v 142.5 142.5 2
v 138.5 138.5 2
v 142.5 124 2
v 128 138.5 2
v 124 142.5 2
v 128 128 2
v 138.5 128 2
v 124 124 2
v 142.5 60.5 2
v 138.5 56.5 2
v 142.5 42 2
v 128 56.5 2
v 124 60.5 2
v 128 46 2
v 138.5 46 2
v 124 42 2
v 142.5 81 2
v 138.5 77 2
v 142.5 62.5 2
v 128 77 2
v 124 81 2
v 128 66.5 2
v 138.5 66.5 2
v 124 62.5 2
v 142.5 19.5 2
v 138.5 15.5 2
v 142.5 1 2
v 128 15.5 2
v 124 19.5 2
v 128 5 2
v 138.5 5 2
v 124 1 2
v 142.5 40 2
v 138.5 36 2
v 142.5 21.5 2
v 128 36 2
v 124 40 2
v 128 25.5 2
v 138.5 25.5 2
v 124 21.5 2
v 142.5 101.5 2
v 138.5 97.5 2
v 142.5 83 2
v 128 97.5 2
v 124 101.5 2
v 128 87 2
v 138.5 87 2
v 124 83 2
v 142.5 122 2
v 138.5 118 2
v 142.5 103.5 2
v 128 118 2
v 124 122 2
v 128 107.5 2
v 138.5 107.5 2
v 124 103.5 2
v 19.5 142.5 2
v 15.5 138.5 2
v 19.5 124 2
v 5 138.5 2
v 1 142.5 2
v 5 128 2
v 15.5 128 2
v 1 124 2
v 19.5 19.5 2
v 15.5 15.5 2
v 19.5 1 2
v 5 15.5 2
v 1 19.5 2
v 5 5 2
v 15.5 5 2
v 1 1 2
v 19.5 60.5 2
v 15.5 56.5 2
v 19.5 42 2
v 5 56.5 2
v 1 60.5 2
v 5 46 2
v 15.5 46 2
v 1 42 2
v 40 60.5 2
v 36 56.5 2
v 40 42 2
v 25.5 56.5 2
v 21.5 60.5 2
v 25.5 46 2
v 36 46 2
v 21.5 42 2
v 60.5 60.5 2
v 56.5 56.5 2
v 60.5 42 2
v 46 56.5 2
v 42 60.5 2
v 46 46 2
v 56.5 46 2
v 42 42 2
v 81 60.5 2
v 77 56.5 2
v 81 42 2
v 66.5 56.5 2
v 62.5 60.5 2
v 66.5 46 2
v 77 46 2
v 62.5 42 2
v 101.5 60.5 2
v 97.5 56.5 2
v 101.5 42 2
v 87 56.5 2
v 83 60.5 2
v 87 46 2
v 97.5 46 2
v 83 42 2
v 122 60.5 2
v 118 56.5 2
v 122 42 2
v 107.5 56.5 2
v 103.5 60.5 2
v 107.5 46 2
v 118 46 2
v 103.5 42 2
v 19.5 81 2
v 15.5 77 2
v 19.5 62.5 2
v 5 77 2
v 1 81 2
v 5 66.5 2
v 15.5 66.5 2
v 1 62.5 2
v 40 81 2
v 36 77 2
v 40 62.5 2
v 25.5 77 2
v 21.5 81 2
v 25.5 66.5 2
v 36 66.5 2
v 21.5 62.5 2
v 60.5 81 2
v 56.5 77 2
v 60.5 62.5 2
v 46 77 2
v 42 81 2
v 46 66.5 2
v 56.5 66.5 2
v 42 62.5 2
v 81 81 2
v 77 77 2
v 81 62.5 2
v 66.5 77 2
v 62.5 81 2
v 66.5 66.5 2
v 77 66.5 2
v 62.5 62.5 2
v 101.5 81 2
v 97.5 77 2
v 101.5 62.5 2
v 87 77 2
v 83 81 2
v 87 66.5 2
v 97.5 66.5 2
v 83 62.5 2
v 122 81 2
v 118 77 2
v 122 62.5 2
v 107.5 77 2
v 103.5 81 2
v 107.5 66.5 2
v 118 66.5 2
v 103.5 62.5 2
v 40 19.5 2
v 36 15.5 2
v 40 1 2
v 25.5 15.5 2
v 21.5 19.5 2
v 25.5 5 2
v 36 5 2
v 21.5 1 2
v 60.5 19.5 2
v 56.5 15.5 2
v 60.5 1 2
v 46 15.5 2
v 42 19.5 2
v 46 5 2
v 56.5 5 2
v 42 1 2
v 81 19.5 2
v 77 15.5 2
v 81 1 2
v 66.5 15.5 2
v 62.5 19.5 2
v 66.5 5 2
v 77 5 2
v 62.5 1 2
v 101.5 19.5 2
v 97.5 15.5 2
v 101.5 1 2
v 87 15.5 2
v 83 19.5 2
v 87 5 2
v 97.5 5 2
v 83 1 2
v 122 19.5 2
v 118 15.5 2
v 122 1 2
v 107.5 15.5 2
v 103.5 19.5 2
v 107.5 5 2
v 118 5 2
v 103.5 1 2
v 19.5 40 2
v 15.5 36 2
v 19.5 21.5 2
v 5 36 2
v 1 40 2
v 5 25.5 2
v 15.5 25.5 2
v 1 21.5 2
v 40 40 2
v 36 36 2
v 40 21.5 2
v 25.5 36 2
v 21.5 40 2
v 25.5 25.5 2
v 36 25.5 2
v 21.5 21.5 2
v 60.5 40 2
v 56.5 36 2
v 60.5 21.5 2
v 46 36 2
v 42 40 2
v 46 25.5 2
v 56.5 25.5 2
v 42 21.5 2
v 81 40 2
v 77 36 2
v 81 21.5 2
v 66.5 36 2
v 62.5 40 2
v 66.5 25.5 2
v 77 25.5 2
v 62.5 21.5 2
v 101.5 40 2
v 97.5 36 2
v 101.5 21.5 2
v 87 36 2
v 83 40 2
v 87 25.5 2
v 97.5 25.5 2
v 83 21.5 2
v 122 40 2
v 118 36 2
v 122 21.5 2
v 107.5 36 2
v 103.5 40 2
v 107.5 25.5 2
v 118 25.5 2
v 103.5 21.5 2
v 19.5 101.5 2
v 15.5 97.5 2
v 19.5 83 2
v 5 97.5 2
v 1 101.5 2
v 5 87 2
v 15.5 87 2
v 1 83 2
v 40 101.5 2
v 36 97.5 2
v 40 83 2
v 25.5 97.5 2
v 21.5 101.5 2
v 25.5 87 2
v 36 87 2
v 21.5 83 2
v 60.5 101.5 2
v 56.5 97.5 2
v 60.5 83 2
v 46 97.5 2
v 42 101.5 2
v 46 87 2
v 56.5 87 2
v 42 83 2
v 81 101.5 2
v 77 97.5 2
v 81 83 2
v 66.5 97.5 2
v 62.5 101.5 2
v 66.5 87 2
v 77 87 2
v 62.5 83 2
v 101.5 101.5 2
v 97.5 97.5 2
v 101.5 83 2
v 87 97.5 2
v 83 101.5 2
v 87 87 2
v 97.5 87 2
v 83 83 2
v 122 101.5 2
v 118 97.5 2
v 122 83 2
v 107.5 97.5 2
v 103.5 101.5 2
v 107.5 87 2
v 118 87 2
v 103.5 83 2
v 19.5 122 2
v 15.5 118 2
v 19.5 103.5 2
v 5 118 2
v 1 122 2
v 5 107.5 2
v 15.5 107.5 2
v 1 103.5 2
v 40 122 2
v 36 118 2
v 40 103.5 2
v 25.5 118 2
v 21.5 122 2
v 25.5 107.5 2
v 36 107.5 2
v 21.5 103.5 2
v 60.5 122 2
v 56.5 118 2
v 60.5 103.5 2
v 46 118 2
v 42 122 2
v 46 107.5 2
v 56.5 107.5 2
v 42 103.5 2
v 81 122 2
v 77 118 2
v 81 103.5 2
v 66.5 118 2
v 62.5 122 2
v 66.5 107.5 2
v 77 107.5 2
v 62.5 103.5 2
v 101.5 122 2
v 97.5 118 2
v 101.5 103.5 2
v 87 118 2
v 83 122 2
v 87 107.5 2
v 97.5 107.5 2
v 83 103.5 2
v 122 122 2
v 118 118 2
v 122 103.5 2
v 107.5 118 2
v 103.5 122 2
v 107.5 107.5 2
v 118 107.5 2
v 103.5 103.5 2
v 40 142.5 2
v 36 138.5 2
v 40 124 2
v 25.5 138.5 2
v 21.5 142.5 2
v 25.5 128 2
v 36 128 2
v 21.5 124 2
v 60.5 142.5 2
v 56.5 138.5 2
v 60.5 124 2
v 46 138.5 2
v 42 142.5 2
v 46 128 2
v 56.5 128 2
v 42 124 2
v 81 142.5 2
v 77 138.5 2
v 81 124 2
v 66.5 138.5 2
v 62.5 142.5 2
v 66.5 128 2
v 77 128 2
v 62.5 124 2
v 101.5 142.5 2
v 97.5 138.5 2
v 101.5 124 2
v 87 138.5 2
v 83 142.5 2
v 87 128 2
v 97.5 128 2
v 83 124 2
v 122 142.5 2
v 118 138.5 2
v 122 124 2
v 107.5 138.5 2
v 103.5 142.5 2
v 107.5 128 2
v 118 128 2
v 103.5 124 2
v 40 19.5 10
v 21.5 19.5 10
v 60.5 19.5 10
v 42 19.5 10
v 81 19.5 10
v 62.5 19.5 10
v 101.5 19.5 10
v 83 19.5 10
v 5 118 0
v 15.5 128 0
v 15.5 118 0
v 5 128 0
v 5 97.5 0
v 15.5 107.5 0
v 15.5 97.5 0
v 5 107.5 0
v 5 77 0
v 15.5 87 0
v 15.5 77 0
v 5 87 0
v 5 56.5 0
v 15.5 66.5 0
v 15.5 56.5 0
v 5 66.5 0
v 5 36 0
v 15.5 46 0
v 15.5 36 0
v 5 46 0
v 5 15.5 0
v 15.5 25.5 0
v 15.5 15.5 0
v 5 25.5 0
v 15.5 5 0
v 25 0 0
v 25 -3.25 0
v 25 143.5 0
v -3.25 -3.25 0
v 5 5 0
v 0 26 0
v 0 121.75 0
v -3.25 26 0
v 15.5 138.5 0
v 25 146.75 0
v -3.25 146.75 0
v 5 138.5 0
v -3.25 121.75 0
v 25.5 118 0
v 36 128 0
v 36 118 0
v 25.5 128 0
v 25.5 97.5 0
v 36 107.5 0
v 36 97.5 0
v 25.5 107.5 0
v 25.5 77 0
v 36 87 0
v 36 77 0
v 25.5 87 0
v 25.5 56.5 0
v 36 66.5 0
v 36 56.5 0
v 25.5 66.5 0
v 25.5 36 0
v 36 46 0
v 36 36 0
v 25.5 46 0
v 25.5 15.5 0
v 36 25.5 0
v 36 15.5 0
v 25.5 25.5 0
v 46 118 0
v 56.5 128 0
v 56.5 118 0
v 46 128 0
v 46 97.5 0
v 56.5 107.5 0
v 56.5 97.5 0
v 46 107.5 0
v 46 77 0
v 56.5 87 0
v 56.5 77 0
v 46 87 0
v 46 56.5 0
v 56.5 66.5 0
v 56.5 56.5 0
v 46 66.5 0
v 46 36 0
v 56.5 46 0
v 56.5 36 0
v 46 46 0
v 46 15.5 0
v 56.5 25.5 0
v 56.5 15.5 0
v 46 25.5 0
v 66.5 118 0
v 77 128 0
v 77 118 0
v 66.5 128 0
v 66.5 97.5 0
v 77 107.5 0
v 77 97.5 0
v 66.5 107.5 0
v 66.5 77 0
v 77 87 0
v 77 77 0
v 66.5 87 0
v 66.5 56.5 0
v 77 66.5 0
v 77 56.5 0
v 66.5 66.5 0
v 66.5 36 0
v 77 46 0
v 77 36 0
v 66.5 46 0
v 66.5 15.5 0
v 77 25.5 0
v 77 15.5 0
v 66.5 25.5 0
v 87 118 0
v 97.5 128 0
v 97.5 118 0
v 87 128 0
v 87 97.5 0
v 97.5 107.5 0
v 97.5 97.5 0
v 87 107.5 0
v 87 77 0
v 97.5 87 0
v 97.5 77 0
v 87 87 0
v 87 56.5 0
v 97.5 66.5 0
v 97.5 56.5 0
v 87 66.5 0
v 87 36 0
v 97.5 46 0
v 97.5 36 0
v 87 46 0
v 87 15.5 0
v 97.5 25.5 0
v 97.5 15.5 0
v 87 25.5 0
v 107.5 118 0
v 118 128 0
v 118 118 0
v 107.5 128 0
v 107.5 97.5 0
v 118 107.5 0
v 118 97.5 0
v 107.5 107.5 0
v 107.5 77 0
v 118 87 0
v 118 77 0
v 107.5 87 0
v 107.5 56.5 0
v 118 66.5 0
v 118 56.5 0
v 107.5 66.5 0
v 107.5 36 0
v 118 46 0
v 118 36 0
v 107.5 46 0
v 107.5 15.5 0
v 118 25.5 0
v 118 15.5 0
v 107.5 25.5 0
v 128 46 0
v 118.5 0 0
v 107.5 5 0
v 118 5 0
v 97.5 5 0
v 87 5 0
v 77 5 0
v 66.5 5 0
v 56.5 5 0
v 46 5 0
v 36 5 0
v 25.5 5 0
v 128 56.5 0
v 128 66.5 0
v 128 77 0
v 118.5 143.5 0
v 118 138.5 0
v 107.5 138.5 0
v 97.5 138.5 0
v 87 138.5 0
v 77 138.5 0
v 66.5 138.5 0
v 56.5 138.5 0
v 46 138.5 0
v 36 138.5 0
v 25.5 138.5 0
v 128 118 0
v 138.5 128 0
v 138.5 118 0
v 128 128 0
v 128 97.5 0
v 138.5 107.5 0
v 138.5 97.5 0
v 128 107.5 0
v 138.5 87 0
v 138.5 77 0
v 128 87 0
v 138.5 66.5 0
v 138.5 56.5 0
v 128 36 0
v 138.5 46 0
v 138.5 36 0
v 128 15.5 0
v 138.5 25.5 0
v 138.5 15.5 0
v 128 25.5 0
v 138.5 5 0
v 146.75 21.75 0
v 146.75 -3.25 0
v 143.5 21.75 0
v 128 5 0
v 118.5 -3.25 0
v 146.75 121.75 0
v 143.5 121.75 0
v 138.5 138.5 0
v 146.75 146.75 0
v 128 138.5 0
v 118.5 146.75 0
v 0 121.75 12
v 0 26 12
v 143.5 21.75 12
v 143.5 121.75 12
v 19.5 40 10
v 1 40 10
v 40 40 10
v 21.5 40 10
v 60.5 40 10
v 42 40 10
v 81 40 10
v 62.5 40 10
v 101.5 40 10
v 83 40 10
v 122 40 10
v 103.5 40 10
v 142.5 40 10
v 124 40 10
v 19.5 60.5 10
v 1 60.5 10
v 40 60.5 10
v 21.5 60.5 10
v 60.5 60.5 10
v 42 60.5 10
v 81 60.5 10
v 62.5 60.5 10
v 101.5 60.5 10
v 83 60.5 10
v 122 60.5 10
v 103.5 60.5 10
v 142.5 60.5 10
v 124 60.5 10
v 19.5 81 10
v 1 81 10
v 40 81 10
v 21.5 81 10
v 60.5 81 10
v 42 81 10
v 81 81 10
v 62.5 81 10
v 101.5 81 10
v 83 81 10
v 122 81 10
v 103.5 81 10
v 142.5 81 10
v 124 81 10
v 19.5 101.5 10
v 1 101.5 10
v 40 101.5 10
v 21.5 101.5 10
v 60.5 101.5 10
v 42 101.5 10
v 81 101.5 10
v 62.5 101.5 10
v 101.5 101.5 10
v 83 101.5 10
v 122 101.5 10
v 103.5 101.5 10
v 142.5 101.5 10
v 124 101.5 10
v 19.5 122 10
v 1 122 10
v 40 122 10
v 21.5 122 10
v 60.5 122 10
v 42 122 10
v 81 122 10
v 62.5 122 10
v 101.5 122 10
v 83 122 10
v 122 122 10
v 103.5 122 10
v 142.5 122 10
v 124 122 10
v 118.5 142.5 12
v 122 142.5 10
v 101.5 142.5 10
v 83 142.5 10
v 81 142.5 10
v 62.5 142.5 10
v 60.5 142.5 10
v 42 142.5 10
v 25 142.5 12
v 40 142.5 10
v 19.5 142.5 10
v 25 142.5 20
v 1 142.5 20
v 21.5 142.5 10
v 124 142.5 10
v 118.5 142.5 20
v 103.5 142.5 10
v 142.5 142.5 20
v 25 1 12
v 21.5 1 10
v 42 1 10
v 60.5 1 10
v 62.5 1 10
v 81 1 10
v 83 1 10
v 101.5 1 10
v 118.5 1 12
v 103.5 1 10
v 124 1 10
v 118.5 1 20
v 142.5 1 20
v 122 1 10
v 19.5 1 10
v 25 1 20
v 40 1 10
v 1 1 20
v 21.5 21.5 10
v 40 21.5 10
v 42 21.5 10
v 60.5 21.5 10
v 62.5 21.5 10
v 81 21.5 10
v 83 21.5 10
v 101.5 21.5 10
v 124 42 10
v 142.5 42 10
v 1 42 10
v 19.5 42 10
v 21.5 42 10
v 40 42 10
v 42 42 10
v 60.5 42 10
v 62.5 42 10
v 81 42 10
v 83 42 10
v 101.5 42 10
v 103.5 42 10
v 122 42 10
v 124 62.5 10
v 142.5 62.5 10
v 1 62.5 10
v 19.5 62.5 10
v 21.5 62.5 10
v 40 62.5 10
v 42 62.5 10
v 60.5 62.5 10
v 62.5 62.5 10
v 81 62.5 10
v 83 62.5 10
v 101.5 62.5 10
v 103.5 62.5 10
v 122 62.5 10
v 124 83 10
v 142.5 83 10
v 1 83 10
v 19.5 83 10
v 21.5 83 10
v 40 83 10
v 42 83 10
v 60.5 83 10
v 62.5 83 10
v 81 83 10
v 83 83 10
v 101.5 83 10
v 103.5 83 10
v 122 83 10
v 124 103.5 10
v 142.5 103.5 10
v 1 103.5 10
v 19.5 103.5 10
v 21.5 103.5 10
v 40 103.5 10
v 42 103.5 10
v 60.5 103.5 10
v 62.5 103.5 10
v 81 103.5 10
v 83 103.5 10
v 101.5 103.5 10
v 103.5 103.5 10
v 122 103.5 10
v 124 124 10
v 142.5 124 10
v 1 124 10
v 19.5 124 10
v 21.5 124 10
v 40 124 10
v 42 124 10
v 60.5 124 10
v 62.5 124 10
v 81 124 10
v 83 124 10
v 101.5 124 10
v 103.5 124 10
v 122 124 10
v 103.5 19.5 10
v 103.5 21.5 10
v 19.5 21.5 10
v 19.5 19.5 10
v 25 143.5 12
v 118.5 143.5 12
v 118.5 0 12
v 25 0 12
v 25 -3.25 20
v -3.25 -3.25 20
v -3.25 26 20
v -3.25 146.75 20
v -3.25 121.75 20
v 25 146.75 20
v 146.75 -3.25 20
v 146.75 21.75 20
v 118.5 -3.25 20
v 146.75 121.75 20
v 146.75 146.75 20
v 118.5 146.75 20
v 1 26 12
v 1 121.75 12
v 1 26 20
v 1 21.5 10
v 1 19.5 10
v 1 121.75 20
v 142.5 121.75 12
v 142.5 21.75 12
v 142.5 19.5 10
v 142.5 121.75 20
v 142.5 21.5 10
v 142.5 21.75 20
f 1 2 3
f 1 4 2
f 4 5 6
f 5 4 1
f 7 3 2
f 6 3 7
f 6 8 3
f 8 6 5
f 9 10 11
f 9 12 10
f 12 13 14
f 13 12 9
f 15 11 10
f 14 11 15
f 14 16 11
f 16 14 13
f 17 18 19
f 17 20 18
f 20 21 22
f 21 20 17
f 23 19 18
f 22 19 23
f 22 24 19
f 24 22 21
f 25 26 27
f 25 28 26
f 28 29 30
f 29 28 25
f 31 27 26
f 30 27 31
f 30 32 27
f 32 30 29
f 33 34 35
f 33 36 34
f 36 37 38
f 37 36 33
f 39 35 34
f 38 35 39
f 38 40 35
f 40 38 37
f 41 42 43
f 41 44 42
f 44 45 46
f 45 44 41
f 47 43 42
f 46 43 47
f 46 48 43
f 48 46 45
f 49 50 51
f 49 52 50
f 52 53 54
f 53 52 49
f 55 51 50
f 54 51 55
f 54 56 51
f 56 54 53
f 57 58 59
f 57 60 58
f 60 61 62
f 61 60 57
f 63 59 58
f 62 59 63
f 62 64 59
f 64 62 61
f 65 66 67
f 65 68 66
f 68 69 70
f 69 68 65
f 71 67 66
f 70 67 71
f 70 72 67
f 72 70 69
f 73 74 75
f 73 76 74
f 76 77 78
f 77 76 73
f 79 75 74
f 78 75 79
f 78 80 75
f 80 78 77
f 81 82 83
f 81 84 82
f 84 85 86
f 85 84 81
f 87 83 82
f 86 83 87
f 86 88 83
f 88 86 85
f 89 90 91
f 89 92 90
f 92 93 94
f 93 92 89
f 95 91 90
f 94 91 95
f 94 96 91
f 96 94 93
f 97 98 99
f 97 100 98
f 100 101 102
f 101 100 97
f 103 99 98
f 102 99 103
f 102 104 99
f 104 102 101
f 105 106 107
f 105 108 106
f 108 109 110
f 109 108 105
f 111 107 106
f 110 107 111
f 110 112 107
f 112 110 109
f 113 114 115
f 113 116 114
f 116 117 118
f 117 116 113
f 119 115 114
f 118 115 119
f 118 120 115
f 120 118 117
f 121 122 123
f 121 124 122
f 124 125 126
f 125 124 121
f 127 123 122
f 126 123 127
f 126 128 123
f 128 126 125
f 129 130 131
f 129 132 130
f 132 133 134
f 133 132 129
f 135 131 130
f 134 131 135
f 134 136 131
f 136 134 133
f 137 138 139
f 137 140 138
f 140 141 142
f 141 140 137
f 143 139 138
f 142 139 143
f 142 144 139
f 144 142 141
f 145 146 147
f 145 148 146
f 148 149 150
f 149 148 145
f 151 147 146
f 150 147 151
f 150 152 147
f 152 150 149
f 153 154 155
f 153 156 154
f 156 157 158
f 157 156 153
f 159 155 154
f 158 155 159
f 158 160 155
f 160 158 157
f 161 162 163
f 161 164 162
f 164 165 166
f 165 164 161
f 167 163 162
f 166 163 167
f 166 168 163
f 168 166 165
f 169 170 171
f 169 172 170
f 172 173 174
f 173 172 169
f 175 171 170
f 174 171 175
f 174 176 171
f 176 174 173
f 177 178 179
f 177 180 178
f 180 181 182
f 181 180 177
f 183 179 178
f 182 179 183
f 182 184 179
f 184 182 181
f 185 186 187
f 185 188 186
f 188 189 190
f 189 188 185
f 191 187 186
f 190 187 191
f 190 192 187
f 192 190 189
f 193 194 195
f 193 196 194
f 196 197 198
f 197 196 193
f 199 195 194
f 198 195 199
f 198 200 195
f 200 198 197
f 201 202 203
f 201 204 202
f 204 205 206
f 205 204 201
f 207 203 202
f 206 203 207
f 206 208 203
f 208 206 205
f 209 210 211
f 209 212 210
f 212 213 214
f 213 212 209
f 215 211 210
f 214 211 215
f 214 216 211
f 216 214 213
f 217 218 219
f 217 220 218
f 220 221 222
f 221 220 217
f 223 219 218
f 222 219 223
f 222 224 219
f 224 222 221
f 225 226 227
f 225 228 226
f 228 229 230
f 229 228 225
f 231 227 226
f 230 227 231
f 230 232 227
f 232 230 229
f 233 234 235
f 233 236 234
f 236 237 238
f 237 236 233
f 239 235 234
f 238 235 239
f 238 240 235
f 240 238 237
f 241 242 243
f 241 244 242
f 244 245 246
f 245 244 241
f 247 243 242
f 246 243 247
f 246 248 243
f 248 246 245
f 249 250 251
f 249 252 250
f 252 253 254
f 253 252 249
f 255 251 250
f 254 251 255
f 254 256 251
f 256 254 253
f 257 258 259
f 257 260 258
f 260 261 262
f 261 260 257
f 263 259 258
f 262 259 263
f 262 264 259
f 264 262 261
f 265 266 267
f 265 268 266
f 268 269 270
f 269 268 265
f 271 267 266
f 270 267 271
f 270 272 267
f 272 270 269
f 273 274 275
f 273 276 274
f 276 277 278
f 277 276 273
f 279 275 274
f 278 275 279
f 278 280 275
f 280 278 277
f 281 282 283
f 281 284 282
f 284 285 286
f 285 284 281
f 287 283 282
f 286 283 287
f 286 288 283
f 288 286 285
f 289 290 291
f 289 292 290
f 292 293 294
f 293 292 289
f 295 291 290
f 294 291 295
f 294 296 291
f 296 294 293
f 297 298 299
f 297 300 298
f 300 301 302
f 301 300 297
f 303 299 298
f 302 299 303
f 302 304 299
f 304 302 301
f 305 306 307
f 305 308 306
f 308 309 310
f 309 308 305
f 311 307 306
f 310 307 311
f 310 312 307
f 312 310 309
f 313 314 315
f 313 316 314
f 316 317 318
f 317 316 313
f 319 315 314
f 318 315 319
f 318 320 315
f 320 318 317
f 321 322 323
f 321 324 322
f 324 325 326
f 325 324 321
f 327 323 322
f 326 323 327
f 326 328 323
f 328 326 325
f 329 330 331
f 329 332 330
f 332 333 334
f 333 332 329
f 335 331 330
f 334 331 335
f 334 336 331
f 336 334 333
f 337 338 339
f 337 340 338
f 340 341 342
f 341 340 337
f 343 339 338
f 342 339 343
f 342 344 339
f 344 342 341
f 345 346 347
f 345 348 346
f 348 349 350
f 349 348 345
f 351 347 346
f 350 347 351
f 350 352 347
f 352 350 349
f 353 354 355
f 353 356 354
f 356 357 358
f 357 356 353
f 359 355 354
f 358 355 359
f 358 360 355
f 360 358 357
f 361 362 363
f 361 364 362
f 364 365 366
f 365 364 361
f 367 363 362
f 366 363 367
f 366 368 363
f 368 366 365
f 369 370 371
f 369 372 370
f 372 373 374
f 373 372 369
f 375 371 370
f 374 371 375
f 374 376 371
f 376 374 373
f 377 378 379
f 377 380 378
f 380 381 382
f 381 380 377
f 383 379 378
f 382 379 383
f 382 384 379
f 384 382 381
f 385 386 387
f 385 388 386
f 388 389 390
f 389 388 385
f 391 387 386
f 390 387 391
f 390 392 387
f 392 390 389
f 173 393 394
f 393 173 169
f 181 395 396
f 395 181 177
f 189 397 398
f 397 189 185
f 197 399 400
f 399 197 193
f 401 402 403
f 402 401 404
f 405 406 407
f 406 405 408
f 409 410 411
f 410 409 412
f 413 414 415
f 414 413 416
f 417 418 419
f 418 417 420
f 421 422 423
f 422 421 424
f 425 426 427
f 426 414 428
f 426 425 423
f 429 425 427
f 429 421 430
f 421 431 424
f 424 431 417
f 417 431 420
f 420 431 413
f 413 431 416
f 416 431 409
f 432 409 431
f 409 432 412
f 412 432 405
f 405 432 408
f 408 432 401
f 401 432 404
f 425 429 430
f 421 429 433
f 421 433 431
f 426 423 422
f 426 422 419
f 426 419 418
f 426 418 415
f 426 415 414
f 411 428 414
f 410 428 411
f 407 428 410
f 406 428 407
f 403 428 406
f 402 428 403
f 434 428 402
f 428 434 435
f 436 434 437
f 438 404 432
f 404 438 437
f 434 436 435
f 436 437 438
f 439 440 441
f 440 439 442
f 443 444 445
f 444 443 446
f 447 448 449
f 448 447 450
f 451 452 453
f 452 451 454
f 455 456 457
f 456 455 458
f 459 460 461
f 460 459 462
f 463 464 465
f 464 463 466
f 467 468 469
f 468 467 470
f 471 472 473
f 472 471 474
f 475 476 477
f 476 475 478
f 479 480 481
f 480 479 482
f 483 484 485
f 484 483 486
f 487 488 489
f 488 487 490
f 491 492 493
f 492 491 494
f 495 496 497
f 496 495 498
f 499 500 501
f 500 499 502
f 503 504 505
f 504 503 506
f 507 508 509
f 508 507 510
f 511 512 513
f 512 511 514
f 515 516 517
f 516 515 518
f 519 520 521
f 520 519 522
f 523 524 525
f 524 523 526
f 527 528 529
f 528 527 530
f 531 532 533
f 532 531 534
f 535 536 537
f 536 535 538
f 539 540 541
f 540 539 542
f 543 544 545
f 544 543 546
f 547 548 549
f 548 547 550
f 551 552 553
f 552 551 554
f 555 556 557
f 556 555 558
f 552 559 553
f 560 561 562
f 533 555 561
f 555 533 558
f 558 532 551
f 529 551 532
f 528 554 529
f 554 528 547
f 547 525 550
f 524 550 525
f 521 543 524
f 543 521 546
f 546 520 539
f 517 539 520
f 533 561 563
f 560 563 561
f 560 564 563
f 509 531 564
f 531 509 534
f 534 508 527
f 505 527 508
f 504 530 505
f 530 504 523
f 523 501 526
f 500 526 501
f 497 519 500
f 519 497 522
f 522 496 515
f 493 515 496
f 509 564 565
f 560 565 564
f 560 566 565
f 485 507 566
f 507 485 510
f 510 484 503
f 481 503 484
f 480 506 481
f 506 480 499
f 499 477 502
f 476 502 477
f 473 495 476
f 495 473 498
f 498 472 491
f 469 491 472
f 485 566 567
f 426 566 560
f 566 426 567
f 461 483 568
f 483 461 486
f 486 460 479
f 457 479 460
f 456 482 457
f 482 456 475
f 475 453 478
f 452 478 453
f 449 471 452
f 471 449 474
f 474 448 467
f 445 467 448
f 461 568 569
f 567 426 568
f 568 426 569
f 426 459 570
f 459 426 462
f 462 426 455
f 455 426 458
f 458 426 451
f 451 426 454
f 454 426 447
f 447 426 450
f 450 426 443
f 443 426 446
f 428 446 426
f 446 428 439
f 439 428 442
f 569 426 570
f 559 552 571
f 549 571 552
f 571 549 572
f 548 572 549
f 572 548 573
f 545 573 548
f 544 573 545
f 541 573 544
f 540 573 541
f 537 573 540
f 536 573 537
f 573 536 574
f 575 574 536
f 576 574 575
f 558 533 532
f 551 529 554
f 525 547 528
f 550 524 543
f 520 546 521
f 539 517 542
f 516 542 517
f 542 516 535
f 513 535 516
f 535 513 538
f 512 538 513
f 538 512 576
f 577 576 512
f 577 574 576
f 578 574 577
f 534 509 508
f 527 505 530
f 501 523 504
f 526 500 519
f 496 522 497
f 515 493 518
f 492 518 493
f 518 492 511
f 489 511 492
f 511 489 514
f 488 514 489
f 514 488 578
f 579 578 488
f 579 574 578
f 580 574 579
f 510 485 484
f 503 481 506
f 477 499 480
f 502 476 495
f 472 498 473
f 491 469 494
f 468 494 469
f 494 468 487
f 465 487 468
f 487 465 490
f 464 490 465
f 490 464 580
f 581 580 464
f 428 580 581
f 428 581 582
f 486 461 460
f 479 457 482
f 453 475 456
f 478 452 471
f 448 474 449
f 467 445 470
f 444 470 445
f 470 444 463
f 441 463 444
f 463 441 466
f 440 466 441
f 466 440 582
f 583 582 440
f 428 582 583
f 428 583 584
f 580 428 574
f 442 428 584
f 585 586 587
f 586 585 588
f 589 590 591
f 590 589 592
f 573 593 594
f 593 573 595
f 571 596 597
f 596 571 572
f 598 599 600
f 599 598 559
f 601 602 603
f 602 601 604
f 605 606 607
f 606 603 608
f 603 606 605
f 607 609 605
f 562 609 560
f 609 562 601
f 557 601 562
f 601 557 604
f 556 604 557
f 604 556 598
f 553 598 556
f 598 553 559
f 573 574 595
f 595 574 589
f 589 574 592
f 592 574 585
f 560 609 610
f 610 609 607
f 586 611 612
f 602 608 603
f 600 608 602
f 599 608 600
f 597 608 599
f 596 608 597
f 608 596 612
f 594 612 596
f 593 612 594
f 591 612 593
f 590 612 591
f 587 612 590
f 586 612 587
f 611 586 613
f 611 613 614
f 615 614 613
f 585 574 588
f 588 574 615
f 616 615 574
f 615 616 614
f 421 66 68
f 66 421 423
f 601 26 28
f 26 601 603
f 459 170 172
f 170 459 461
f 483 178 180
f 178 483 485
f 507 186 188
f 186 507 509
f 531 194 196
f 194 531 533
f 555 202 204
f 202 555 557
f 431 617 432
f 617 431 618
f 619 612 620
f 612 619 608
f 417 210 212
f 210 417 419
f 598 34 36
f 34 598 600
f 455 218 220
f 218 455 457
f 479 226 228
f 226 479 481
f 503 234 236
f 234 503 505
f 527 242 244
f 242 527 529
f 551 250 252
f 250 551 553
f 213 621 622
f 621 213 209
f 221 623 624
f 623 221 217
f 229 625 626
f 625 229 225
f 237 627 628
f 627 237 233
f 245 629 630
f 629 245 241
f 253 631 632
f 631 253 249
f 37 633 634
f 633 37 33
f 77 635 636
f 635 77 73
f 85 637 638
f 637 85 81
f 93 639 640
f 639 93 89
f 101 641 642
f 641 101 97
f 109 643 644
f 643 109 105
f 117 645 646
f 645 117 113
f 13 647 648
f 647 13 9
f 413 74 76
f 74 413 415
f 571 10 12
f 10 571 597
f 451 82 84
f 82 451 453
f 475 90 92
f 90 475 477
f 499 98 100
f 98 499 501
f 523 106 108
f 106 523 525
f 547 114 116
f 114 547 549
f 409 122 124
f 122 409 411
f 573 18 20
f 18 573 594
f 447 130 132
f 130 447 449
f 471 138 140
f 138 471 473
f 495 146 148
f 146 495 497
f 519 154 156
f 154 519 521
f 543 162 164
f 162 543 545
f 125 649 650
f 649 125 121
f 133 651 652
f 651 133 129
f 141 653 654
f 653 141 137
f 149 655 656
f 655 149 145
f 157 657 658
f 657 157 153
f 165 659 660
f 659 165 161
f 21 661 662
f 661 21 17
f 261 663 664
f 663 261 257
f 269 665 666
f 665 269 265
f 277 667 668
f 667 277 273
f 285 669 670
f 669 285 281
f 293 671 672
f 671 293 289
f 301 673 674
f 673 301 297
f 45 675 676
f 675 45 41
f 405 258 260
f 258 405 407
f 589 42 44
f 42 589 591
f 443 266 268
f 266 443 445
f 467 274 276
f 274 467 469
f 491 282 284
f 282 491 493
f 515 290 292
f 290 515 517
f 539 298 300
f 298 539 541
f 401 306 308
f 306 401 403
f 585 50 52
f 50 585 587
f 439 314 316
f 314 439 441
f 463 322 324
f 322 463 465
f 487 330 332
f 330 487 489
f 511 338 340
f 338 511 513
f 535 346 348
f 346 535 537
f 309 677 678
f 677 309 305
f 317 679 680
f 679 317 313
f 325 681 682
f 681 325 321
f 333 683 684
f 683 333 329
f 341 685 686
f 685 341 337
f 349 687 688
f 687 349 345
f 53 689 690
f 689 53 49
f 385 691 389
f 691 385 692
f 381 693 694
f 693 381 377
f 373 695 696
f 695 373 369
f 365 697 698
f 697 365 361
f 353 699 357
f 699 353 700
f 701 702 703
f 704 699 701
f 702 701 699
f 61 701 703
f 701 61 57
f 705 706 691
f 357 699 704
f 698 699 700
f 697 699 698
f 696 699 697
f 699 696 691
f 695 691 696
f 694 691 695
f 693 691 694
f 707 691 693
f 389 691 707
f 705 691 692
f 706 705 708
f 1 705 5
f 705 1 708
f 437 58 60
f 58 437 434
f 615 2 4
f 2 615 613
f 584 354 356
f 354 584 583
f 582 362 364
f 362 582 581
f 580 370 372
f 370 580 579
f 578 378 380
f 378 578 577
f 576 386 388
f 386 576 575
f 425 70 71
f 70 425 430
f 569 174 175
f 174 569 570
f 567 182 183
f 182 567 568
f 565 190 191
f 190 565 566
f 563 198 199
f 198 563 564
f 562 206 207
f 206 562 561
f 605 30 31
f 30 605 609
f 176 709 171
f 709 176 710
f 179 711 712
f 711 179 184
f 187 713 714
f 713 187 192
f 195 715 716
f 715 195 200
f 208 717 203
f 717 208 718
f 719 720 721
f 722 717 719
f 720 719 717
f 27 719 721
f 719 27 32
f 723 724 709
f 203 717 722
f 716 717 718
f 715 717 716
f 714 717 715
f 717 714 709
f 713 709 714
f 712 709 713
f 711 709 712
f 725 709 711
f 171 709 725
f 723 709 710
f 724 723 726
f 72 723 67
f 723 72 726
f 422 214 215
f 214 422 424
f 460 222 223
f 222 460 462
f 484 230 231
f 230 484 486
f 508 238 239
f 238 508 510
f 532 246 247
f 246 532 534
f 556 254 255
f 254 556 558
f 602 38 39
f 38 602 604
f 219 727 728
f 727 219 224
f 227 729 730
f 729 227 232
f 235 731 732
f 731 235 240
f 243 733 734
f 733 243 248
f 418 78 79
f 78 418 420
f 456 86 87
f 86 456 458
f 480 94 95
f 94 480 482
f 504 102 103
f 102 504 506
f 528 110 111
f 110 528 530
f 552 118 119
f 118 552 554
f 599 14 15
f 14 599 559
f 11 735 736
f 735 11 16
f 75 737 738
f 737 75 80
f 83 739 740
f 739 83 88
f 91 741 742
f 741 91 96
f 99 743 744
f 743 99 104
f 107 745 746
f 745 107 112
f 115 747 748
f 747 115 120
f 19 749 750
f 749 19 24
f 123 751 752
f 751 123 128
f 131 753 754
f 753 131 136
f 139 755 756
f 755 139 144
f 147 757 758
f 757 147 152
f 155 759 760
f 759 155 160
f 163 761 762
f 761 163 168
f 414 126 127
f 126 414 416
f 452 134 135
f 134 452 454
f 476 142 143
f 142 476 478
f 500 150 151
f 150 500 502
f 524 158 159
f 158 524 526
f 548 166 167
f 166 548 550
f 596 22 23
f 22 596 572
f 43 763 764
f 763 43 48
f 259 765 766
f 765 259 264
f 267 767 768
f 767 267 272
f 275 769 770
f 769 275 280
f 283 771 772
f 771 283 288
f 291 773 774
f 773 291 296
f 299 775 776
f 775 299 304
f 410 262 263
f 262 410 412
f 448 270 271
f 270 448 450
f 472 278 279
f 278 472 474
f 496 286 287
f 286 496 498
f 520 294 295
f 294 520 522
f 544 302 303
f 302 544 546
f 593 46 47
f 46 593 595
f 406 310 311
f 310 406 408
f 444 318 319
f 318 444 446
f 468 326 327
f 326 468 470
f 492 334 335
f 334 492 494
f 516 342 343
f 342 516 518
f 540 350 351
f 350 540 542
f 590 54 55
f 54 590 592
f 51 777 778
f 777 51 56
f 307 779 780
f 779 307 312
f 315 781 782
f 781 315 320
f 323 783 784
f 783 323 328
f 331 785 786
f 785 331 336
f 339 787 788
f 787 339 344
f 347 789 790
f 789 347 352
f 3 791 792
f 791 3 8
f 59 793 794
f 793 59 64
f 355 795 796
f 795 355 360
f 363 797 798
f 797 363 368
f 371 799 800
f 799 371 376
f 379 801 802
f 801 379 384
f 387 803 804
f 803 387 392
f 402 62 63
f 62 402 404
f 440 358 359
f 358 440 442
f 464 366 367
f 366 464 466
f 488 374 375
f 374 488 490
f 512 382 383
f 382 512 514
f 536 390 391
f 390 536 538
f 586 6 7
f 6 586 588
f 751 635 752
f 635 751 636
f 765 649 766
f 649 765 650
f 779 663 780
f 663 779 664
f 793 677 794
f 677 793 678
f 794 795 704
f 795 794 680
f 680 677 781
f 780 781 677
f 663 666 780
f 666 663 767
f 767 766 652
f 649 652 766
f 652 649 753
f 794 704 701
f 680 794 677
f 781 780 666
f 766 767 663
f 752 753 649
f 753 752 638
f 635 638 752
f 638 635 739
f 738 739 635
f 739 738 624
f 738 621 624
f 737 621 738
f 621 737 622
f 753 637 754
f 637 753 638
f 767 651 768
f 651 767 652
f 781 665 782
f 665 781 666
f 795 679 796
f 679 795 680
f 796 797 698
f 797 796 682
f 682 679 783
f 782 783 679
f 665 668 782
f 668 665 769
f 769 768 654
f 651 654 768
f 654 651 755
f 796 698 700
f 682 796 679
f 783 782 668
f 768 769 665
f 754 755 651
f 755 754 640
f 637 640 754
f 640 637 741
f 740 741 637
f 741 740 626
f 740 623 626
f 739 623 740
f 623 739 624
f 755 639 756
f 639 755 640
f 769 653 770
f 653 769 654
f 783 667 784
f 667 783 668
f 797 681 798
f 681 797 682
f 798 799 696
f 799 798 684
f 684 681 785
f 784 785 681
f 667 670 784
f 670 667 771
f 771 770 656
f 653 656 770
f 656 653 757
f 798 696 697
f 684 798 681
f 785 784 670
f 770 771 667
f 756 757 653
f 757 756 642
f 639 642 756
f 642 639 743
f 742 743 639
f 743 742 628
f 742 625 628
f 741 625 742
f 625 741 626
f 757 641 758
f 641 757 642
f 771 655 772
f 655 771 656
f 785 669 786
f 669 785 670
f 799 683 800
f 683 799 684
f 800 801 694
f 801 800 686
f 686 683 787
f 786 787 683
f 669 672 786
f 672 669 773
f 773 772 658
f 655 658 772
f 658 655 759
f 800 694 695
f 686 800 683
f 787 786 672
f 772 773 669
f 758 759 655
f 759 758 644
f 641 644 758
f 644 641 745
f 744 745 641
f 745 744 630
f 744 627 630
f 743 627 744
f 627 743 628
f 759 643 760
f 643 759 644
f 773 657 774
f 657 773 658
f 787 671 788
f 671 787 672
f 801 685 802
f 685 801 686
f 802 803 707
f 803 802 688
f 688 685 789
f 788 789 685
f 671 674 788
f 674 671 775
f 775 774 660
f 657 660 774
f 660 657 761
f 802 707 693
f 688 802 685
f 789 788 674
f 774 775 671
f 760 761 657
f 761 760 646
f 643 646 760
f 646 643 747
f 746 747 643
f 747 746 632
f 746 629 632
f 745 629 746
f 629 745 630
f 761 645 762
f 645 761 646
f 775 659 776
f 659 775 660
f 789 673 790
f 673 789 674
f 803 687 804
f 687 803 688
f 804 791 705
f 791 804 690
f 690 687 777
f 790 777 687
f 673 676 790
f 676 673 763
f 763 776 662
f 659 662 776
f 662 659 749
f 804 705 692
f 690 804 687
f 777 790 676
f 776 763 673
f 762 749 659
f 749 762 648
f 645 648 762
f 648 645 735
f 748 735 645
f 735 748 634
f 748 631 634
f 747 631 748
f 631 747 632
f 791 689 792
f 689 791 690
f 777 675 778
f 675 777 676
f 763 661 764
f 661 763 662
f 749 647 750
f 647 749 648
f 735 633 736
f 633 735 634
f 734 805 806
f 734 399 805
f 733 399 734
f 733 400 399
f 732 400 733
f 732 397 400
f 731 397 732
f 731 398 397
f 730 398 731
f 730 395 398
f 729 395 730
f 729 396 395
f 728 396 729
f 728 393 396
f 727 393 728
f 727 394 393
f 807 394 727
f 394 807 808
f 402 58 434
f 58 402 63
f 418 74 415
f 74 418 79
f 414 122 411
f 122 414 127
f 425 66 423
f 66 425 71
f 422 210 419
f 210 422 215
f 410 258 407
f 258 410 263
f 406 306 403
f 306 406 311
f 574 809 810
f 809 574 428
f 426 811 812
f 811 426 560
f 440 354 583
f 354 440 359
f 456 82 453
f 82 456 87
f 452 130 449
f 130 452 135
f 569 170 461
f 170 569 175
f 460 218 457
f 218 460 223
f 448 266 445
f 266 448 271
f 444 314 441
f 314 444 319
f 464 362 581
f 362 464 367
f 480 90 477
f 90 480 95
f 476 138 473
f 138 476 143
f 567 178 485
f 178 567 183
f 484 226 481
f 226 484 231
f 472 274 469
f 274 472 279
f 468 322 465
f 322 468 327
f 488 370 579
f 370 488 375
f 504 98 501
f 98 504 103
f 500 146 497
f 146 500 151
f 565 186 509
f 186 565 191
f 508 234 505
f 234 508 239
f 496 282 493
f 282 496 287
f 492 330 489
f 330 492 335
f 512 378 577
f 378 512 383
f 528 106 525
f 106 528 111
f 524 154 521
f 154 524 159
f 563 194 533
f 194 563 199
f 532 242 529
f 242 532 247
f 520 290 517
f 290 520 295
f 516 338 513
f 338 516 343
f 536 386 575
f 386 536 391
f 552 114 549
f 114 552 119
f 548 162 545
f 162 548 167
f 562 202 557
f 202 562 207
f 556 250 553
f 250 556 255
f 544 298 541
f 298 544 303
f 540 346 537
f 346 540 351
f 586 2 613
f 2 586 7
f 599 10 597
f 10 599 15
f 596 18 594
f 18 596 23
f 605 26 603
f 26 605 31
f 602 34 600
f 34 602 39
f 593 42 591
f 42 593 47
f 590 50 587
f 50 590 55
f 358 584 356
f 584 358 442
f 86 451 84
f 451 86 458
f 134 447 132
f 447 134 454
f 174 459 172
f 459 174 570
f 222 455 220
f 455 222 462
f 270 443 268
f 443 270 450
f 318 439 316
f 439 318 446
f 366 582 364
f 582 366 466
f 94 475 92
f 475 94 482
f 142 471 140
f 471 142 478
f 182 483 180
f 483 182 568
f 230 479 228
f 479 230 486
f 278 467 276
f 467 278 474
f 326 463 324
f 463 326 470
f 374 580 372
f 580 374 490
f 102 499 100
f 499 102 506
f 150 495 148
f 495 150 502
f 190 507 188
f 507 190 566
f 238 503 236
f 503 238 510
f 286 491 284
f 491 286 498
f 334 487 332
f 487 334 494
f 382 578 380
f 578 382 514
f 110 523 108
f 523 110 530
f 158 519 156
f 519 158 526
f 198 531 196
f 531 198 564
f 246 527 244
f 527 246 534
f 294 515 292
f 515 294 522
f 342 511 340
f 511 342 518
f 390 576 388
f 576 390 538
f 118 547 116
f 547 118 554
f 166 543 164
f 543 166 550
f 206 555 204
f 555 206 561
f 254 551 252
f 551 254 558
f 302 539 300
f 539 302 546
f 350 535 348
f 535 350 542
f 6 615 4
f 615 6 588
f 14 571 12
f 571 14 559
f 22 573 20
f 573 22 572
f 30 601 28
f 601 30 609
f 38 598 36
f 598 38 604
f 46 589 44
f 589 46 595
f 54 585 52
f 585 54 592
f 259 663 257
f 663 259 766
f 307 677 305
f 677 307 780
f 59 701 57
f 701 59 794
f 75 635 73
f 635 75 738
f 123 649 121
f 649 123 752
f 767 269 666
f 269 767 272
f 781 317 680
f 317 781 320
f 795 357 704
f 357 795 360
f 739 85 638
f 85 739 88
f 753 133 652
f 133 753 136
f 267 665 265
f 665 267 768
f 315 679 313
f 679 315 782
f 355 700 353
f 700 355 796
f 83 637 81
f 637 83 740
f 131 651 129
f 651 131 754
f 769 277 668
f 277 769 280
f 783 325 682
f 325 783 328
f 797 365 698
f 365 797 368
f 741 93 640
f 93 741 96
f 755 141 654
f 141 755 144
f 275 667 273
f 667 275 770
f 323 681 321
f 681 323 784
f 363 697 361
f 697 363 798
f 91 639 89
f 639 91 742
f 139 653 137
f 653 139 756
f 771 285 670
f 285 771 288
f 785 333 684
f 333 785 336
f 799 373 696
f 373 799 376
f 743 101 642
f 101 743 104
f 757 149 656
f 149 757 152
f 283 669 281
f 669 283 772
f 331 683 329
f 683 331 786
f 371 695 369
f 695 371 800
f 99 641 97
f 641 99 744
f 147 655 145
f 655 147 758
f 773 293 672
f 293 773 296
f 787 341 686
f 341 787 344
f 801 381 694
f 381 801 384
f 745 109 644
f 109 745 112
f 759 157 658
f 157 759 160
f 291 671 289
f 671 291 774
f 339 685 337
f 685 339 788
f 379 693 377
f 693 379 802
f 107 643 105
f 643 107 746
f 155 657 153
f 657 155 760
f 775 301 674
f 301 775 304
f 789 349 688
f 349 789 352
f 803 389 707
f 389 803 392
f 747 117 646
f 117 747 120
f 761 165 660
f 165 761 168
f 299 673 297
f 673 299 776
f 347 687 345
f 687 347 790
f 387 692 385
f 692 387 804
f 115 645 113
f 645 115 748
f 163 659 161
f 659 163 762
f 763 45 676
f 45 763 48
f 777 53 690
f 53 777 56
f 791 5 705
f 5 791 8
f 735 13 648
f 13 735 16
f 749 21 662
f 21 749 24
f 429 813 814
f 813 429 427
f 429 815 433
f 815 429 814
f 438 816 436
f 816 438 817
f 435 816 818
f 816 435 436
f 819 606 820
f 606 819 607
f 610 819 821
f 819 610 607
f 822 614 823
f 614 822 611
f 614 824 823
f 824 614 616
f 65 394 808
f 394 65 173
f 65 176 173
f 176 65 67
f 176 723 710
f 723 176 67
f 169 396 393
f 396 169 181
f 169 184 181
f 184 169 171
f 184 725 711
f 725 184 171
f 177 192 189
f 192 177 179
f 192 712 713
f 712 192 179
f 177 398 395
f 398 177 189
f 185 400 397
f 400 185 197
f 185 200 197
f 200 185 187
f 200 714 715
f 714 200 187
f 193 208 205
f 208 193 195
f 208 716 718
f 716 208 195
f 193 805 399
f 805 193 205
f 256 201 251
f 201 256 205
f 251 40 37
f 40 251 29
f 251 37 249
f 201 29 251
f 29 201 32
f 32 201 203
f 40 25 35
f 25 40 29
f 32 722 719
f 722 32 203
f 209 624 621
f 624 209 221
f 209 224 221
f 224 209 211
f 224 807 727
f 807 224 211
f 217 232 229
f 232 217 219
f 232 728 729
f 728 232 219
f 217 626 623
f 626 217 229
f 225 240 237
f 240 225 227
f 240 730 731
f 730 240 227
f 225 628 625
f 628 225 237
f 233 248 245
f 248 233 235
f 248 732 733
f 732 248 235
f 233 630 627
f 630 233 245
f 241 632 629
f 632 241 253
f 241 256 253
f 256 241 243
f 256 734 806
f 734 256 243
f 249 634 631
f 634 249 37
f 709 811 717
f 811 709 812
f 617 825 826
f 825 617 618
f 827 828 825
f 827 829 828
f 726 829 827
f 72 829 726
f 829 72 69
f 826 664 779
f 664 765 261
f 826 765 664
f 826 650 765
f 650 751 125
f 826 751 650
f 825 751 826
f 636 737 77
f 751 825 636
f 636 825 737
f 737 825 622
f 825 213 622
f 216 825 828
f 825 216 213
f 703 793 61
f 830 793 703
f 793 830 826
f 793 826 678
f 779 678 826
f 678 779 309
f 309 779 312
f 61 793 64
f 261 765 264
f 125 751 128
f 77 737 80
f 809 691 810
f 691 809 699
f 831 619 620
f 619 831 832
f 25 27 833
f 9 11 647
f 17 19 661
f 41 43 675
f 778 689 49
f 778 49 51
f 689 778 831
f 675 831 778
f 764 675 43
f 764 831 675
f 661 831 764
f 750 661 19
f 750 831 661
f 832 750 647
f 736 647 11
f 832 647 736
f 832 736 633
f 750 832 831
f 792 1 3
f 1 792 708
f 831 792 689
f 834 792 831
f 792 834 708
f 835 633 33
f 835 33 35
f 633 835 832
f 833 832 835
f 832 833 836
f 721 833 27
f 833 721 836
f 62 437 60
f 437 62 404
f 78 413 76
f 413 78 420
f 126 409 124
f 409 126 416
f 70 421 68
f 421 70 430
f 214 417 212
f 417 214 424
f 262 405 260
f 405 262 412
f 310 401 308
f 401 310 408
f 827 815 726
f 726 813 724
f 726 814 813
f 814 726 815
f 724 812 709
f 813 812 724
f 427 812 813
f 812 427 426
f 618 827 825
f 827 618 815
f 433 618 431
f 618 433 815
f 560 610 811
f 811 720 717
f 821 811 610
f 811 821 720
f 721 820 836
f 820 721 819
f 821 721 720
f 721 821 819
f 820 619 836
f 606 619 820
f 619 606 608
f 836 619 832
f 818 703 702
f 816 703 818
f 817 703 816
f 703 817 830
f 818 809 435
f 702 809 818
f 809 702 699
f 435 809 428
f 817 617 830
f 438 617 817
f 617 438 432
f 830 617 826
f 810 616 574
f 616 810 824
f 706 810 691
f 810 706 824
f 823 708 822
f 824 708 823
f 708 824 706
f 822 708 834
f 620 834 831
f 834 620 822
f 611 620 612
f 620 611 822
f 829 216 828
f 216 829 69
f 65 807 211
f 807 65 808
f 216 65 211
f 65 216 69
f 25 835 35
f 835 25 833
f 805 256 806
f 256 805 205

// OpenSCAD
// 鍵帽儲存托盤產生器
// Keycap Storage Tray Generator
include <KSTG_Base.SCAD>

// 可複製此樣板檔依照自己需求另存新檔
// 以便以檔案區隔樣式

// 存放盒子的大小:
BoxSize_L1 = 150; //長度(水平)
BoxSize_W1 = 150; //寬度(垂直)
BoxSize_H = 50;  //高度

// 外圍厚度
Tray_Fence_T = 1;  //厚度
Tray_Fence_H = 10;  //高度

// 分隔片
Tray_Separator_T = 2;  //厚度
Tray_Separator_H = 8;  //高度 要高於上一層與鍵帽間的間隙
Tray_Separator_L = 3;  //短隔板長度

// 分隔片(長寬區分/尚未使用)
//Tray_Separator_T_L = 1;  //長(水平) 厚度
//Tray_Separator_T_W = 2;  //寬(垂直) 厚度
//Tray_Separator_H_L = 5;  //長(水平) 高度
//Tray_Separator_H_W = 5;  //寬(垂直) 高度

// 底板
Tray_Bottom_L = 4; //底部分隔板至到底板寬度
Tray_Bottom_T = 2; //底板厚度

//常見鍵帽高度表:
//SA  16.5mm  Cherry 9.4mm
//OEM 11.9mm  TAI HAO 14.8
//XDA 9.1mm   DSA 7.6
//ADA 8mm (18.2x18.2mm )
//適用於 Tray_Column_H 參數

//四角落立柱高度
//堆疊托盤時可墊高避免直接碰觸鍵帽
Tray_Column_H = 18; // 高度 可依照鍵帽高度調整
Tray_Column_T = 8;  // 厚度
Tray_Column_L = 25; // 長面長度
Tray_Column_W = 25; // 寬面長度 

//放置鍵帽空間
Keycaps_Space_L = 18.5;
Keycaps_Space_W = 18.5;

//垂直分隔片樣式
// 0 不需要
// 1 全部
// 2 短隔板無底板
// 3 短隔板有底板

Tray_VS_Type = 1;

//多餘空間處理方式
//How to use the extra space
// 0 不處理，照原本盒子大小產生外圍
// 1 不處理，僅列印鍵帽所需空間
// 2 角落填補剩餘空間
ExtraSpaceUse = 2;

//是否顯示文字標記 0關/1開
ShowText = 1 ;

//清除分隔片與底板
//請參考F5後帶出的座標數值
//例如：
// Tray_Separator_Cut_L=[
// [1,1],[2,1],[3,1],[1,2]
// ];

// 長(水平)分隔片 紅色
Tray_Separator_Cut_L=[
[1,1],[7,1],[6,1]
];
// 寬(垂直)分隔片 藍色 -vnm,     
Tray_Separator_Cut_W=[
[1,1],[2,1],[3,1],[4,1],[5,1],[6,1],
[1,2],[2,2],[3,2],[4,2],[5,2],[6,2]
];
// 交錯點 綠色 長寬分隔片交會處
// 須手動清除交錯點
Tray_Separator_Cut_C=[
[6,1]
];
// 長(水平)底板 紅色
Tray_Separator_Cut_LB=[
];
// 寬(垂直)底板 藍色
Tray_Separator_Cut_WB=[
];
